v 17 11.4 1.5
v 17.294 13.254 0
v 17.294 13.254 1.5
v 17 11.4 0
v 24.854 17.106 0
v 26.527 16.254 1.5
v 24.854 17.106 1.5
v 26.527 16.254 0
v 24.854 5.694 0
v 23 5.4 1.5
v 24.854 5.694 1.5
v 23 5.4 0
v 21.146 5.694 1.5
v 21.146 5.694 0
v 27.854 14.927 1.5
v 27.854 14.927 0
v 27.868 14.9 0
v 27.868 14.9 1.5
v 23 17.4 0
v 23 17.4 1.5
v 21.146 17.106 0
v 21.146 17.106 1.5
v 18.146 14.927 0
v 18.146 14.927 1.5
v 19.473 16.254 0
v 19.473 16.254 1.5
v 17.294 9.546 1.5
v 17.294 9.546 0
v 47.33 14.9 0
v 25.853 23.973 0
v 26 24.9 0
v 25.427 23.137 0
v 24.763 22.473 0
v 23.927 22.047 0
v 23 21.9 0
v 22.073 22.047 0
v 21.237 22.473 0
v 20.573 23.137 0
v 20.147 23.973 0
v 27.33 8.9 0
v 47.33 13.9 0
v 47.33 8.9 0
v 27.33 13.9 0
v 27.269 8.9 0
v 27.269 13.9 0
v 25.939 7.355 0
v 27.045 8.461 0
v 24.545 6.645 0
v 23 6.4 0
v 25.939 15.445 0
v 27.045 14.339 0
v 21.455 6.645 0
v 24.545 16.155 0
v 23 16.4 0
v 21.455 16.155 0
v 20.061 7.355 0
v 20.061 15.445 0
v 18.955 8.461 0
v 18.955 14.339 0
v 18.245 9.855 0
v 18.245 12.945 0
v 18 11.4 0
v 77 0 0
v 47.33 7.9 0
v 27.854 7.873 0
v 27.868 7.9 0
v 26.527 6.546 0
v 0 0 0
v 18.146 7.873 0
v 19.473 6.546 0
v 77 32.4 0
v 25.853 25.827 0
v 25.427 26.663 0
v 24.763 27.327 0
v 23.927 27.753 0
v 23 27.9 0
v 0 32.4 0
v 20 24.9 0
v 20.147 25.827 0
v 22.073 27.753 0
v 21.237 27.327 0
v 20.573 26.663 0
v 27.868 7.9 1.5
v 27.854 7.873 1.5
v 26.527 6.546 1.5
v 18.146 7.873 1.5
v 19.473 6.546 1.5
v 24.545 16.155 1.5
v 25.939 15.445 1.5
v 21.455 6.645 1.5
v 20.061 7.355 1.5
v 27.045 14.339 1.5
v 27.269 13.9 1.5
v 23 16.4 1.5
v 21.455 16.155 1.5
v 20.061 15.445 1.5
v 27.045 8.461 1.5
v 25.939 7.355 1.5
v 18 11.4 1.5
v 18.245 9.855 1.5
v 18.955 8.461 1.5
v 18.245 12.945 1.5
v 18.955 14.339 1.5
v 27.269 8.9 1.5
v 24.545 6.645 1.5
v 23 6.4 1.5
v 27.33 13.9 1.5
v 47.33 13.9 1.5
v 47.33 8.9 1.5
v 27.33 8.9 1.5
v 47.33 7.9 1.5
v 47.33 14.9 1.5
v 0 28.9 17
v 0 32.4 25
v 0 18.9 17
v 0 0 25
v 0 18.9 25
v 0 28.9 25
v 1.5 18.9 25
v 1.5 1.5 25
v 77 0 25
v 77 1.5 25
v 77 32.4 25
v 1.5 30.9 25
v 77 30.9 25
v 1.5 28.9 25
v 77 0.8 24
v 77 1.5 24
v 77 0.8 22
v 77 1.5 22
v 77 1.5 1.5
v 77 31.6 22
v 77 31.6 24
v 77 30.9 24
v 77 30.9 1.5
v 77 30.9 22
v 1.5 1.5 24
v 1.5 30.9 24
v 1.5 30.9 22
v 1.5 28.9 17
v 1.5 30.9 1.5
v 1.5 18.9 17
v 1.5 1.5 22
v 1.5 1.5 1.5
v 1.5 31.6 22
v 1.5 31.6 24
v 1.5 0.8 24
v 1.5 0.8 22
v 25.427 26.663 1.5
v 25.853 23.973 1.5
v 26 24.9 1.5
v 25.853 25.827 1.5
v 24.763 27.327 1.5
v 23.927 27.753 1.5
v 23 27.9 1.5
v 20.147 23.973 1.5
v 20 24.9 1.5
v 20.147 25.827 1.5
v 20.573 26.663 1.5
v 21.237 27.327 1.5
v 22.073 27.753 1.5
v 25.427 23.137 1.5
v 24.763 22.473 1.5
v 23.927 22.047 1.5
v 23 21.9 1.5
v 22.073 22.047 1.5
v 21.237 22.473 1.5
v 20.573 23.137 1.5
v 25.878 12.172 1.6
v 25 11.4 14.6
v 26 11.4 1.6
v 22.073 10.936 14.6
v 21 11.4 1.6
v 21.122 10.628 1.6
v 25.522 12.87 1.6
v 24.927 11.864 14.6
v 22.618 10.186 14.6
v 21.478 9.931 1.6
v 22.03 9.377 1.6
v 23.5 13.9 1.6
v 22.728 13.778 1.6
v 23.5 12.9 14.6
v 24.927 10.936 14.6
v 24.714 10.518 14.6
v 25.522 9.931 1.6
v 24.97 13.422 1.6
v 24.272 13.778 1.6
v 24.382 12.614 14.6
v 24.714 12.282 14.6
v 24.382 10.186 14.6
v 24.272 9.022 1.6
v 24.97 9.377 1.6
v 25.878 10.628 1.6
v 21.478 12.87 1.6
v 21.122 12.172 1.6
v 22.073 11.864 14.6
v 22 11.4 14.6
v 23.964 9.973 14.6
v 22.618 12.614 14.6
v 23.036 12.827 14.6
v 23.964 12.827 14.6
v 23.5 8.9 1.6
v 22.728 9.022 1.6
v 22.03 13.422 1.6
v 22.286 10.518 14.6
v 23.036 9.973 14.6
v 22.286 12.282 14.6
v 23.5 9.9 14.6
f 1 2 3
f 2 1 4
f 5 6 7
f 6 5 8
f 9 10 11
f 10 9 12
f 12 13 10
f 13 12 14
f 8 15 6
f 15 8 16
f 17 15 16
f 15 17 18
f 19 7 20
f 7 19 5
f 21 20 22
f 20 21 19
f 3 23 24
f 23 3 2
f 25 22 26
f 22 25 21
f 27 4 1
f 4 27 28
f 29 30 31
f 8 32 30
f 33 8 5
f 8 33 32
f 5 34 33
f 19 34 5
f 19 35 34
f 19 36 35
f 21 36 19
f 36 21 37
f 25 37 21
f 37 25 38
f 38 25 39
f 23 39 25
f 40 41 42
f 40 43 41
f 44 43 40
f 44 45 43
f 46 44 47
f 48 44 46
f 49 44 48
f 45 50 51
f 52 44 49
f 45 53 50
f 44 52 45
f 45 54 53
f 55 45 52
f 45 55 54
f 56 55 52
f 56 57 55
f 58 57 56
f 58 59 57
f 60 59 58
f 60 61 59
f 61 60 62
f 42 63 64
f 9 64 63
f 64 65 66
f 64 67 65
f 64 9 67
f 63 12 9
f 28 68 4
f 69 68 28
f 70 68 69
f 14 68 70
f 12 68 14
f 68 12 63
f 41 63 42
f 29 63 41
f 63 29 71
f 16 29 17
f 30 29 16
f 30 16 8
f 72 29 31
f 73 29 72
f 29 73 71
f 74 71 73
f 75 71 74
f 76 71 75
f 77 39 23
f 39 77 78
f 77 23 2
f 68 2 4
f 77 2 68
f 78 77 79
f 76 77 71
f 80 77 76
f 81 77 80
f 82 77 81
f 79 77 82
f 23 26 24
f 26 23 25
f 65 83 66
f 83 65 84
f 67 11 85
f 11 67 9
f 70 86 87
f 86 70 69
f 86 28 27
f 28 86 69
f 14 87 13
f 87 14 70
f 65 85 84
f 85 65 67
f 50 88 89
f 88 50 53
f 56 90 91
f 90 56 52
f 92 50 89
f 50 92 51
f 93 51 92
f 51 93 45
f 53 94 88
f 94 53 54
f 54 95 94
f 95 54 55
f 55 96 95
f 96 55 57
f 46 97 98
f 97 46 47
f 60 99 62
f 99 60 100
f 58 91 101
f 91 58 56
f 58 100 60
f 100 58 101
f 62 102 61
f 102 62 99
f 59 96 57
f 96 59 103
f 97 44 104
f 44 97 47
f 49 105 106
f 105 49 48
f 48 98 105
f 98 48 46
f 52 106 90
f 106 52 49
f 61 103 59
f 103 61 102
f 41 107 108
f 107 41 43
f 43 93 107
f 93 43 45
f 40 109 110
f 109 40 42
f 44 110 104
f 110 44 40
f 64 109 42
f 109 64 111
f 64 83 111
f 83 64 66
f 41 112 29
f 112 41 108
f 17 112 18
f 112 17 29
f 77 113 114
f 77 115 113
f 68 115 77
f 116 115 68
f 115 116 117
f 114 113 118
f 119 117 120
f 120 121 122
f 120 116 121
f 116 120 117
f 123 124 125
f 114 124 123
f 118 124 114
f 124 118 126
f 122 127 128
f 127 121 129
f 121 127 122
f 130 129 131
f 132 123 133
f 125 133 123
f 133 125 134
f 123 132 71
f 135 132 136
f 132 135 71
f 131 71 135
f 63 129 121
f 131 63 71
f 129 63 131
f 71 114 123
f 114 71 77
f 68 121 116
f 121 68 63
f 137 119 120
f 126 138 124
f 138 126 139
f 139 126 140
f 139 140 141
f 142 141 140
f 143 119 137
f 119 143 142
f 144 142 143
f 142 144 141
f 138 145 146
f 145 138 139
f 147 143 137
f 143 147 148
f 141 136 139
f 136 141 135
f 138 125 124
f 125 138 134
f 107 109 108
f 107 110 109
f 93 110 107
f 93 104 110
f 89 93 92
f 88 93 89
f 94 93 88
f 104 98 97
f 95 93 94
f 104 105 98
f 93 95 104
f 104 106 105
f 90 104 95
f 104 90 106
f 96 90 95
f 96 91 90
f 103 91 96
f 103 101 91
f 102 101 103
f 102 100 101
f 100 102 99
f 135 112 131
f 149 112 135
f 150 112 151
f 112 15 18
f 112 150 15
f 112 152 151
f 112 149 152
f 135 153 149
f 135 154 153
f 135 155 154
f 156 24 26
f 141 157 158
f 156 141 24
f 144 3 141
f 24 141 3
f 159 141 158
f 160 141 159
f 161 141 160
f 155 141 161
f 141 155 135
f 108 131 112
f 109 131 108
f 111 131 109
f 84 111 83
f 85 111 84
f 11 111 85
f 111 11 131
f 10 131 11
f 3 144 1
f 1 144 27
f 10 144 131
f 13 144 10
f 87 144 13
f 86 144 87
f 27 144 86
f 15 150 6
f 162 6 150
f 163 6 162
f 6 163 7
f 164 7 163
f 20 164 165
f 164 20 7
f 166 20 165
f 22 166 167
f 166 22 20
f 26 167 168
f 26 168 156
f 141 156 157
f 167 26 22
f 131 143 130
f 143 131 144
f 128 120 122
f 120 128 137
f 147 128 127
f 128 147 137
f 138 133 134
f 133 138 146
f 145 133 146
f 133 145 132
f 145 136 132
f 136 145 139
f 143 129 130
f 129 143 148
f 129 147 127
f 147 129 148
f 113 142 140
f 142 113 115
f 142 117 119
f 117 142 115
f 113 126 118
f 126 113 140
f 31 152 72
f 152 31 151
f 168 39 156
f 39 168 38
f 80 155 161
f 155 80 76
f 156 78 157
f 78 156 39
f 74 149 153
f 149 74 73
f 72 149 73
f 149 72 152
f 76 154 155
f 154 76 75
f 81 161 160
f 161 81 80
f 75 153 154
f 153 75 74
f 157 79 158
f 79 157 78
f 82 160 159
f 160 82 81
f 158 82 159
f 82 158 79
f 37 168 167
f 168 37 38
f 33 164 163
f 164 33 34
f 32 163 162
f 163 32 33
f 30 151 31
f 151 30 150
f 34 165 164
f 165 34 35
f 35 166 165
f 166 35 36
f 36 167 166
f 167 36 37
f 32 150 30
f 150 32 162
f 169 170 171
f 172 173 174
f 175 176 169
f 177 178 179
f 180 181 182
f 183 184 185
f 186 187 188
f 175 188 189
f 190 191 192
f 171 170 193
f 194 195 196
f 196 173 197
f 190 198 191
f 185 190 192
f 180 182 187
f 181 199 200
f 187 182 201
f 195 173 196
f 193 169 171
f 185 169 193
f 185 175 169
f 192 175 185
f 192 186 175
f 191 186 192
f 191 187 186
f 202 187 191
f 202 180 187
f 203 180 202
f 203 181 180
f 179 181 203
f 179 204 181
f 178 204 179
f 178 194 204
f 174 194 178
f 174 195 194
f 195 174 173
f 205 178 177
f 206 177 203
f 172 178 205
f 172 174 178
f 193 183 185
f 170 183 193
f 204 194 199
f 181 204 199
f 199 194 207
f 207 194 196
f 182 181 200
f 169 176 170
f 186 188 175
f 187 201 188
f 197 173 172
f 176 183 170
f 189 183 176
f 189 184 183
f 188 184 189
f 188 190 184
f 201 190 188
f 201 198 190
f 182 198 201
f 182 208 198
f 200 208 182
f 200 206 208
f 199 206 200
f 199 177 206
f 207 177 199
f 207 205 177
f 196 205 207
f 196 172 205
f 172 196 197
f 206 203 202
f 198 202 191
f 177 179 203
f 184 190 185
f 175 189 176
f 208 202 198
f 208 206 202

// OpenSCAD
boardWidth = 30;
boardLength = 75;
boardThickness = 1.6;
wallThickness = 1.5;
gap = .5;
caseHeight = 25;
caseLength = boardLength+wallThickness+gap;
caseWidth = boardWidth+2*wallThickness-2*gap+.4;
buttonRad = 5;
cutWidth = 1;

slop = 0.4;
difference()
{
    cube([caseLength,caseWidth,caseHeight]);
    // carve out general insides
    translate([wallThickness,wallThickness,wallThickness])
    cube([caseLength-wallThickness,caseWidth-2*wallThickness,caseHeight]);
    // carve out slots for board
    translate([wallThickness,0.5*(caseWidth-boardWidth)-slop,caseHeight-3])
    cube([caseLength,boardWidth+2*slop,boardThickness+slop]);
    // carve out sensor wire slot
    translate([0,caseWidth-12-wallThickness,caseHeight-8])
    cube([wallThickness,10,8+boardThickness]);   
    // carve out button press 
    translate([22+1,caseWidth-21,0])
    {
        difference()
        {
            cylinder(r=buttonRad+cutWidth,h=boardThickness,$fn=20);
            cylinder(r=buttonRad, h=boardThickness,$fn=20);
            translate([0,-.5*buttonRad,0])
            cube([2*buttonRad,buttonRad,boardThickness]);
        }
        
        translate([sqrt(3)/2*buttonRad,-0.5*buttonRad-cutWidth,0])
        cube([20,cutWidth,boardThickness]);
        translate([sqrt(3)/2*buttonRad,0.5*buttonRad,0])
        cube([20,cutWidth,boardThickness]);
    }
    
    // carve out LED view hole
    
    translate([22+1,caseWidth-6-wallThickness,0])
    cylinder(r=3,h=boardThickness,$fn=20);
}

translate([wallThickness+22,caseWidth-21,boardThickness])
cylinder(d1=5,d2=3,h=caseHeight-12,$fn=20);
